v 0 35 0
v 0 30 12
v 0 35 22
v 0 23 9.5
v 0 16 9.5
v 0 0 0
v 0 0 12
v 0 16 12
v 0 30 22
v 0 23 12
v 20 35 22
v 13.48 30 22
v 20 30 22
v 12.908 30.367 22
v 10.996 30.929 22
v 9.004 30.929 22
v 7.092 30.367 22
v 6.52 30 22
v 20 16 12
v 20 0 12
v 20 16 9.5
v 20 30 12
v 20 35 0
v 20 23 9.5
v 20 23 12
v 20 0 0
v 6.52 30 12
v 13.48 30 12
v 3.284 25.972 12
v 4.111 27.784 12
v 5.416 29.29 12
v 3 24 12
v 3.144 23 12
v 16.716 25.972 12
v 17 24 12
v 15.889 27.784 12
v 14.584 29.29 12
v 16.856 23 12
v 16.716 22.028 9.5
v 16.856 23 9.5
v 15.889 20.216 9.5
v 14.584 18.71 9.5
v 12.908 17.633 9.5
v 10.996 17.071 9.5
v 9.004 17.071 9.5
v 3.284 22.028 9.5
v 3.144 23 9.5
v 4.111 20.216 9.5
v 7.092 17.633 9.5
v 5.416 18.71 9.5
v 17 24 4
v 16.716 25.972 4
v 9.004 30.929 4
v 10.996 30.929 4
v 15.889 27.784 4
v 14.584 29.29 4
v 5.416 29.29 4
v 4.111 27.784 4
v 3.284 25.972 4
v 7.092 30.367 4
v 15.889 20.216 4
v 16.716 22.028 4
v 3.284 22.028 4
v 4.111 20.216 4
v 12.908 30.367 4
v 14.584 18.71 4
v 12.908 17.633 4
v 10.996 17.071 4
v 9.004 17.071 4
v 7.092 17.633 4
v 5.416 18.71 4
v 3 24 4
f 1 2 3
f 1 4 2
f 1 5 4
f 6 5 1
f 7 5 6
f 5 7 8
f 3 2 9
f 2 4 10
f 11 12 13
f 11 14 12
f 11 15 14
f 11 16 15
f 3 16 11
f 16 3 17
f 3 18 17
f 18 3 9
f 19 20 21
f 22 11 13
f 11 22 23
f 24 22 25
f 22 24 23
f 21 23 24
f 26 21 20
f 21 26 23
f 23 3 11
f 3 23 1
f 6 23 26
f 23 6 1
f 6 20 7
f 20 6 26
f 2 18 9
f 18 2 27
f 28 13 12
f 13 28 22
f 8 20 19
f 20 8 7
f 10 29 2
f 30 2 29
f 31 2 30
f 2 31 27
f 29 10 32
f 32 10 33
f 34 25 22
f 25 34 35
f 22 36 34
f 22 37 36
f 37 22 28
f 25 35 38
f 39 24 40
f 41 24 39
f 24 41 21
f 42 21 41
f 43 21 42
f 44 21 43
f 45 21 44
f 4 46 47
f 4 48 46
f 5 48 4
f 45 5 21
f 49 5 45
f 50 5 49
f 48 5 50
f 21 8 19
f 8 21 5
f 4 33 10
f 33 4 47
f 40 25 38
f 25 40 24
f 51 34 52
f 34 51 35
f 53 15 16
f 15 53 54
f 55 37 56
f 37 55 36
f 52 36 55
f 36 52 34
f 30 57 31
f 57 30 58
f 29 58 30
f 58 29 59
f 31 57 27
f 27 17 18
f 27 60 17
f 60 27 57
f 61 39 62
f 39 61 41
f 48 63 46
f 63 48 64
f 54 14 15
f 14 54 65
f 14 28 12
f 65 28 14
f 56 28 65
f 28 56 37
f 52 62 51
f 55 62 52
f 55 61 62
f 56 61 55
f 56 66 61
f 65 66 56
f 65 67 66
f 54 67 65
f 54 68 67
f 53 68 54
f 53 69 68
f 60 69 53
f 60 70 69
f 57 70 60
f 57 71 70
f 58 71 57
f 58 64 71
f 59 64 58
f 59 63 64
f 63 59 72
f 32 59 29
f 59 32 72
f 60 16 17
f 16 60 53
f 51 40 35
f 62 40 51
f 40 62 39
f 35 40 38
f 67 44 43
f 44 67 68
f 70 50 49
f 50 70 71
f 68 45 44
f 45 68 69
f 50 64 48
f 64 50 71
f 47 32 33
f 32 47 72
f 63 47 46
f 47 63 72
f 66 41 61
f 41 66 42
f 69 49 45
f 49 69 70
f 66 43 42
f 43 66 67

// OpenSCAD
difference() {
	cube([20,35,22]);
	translate([-5,-5,12]) cube([30,35,15]);
	translate([-1,16,9.5]) cube([22,7,3]);
	translate([10,24,4]) cylinder(19,7,7);
}
